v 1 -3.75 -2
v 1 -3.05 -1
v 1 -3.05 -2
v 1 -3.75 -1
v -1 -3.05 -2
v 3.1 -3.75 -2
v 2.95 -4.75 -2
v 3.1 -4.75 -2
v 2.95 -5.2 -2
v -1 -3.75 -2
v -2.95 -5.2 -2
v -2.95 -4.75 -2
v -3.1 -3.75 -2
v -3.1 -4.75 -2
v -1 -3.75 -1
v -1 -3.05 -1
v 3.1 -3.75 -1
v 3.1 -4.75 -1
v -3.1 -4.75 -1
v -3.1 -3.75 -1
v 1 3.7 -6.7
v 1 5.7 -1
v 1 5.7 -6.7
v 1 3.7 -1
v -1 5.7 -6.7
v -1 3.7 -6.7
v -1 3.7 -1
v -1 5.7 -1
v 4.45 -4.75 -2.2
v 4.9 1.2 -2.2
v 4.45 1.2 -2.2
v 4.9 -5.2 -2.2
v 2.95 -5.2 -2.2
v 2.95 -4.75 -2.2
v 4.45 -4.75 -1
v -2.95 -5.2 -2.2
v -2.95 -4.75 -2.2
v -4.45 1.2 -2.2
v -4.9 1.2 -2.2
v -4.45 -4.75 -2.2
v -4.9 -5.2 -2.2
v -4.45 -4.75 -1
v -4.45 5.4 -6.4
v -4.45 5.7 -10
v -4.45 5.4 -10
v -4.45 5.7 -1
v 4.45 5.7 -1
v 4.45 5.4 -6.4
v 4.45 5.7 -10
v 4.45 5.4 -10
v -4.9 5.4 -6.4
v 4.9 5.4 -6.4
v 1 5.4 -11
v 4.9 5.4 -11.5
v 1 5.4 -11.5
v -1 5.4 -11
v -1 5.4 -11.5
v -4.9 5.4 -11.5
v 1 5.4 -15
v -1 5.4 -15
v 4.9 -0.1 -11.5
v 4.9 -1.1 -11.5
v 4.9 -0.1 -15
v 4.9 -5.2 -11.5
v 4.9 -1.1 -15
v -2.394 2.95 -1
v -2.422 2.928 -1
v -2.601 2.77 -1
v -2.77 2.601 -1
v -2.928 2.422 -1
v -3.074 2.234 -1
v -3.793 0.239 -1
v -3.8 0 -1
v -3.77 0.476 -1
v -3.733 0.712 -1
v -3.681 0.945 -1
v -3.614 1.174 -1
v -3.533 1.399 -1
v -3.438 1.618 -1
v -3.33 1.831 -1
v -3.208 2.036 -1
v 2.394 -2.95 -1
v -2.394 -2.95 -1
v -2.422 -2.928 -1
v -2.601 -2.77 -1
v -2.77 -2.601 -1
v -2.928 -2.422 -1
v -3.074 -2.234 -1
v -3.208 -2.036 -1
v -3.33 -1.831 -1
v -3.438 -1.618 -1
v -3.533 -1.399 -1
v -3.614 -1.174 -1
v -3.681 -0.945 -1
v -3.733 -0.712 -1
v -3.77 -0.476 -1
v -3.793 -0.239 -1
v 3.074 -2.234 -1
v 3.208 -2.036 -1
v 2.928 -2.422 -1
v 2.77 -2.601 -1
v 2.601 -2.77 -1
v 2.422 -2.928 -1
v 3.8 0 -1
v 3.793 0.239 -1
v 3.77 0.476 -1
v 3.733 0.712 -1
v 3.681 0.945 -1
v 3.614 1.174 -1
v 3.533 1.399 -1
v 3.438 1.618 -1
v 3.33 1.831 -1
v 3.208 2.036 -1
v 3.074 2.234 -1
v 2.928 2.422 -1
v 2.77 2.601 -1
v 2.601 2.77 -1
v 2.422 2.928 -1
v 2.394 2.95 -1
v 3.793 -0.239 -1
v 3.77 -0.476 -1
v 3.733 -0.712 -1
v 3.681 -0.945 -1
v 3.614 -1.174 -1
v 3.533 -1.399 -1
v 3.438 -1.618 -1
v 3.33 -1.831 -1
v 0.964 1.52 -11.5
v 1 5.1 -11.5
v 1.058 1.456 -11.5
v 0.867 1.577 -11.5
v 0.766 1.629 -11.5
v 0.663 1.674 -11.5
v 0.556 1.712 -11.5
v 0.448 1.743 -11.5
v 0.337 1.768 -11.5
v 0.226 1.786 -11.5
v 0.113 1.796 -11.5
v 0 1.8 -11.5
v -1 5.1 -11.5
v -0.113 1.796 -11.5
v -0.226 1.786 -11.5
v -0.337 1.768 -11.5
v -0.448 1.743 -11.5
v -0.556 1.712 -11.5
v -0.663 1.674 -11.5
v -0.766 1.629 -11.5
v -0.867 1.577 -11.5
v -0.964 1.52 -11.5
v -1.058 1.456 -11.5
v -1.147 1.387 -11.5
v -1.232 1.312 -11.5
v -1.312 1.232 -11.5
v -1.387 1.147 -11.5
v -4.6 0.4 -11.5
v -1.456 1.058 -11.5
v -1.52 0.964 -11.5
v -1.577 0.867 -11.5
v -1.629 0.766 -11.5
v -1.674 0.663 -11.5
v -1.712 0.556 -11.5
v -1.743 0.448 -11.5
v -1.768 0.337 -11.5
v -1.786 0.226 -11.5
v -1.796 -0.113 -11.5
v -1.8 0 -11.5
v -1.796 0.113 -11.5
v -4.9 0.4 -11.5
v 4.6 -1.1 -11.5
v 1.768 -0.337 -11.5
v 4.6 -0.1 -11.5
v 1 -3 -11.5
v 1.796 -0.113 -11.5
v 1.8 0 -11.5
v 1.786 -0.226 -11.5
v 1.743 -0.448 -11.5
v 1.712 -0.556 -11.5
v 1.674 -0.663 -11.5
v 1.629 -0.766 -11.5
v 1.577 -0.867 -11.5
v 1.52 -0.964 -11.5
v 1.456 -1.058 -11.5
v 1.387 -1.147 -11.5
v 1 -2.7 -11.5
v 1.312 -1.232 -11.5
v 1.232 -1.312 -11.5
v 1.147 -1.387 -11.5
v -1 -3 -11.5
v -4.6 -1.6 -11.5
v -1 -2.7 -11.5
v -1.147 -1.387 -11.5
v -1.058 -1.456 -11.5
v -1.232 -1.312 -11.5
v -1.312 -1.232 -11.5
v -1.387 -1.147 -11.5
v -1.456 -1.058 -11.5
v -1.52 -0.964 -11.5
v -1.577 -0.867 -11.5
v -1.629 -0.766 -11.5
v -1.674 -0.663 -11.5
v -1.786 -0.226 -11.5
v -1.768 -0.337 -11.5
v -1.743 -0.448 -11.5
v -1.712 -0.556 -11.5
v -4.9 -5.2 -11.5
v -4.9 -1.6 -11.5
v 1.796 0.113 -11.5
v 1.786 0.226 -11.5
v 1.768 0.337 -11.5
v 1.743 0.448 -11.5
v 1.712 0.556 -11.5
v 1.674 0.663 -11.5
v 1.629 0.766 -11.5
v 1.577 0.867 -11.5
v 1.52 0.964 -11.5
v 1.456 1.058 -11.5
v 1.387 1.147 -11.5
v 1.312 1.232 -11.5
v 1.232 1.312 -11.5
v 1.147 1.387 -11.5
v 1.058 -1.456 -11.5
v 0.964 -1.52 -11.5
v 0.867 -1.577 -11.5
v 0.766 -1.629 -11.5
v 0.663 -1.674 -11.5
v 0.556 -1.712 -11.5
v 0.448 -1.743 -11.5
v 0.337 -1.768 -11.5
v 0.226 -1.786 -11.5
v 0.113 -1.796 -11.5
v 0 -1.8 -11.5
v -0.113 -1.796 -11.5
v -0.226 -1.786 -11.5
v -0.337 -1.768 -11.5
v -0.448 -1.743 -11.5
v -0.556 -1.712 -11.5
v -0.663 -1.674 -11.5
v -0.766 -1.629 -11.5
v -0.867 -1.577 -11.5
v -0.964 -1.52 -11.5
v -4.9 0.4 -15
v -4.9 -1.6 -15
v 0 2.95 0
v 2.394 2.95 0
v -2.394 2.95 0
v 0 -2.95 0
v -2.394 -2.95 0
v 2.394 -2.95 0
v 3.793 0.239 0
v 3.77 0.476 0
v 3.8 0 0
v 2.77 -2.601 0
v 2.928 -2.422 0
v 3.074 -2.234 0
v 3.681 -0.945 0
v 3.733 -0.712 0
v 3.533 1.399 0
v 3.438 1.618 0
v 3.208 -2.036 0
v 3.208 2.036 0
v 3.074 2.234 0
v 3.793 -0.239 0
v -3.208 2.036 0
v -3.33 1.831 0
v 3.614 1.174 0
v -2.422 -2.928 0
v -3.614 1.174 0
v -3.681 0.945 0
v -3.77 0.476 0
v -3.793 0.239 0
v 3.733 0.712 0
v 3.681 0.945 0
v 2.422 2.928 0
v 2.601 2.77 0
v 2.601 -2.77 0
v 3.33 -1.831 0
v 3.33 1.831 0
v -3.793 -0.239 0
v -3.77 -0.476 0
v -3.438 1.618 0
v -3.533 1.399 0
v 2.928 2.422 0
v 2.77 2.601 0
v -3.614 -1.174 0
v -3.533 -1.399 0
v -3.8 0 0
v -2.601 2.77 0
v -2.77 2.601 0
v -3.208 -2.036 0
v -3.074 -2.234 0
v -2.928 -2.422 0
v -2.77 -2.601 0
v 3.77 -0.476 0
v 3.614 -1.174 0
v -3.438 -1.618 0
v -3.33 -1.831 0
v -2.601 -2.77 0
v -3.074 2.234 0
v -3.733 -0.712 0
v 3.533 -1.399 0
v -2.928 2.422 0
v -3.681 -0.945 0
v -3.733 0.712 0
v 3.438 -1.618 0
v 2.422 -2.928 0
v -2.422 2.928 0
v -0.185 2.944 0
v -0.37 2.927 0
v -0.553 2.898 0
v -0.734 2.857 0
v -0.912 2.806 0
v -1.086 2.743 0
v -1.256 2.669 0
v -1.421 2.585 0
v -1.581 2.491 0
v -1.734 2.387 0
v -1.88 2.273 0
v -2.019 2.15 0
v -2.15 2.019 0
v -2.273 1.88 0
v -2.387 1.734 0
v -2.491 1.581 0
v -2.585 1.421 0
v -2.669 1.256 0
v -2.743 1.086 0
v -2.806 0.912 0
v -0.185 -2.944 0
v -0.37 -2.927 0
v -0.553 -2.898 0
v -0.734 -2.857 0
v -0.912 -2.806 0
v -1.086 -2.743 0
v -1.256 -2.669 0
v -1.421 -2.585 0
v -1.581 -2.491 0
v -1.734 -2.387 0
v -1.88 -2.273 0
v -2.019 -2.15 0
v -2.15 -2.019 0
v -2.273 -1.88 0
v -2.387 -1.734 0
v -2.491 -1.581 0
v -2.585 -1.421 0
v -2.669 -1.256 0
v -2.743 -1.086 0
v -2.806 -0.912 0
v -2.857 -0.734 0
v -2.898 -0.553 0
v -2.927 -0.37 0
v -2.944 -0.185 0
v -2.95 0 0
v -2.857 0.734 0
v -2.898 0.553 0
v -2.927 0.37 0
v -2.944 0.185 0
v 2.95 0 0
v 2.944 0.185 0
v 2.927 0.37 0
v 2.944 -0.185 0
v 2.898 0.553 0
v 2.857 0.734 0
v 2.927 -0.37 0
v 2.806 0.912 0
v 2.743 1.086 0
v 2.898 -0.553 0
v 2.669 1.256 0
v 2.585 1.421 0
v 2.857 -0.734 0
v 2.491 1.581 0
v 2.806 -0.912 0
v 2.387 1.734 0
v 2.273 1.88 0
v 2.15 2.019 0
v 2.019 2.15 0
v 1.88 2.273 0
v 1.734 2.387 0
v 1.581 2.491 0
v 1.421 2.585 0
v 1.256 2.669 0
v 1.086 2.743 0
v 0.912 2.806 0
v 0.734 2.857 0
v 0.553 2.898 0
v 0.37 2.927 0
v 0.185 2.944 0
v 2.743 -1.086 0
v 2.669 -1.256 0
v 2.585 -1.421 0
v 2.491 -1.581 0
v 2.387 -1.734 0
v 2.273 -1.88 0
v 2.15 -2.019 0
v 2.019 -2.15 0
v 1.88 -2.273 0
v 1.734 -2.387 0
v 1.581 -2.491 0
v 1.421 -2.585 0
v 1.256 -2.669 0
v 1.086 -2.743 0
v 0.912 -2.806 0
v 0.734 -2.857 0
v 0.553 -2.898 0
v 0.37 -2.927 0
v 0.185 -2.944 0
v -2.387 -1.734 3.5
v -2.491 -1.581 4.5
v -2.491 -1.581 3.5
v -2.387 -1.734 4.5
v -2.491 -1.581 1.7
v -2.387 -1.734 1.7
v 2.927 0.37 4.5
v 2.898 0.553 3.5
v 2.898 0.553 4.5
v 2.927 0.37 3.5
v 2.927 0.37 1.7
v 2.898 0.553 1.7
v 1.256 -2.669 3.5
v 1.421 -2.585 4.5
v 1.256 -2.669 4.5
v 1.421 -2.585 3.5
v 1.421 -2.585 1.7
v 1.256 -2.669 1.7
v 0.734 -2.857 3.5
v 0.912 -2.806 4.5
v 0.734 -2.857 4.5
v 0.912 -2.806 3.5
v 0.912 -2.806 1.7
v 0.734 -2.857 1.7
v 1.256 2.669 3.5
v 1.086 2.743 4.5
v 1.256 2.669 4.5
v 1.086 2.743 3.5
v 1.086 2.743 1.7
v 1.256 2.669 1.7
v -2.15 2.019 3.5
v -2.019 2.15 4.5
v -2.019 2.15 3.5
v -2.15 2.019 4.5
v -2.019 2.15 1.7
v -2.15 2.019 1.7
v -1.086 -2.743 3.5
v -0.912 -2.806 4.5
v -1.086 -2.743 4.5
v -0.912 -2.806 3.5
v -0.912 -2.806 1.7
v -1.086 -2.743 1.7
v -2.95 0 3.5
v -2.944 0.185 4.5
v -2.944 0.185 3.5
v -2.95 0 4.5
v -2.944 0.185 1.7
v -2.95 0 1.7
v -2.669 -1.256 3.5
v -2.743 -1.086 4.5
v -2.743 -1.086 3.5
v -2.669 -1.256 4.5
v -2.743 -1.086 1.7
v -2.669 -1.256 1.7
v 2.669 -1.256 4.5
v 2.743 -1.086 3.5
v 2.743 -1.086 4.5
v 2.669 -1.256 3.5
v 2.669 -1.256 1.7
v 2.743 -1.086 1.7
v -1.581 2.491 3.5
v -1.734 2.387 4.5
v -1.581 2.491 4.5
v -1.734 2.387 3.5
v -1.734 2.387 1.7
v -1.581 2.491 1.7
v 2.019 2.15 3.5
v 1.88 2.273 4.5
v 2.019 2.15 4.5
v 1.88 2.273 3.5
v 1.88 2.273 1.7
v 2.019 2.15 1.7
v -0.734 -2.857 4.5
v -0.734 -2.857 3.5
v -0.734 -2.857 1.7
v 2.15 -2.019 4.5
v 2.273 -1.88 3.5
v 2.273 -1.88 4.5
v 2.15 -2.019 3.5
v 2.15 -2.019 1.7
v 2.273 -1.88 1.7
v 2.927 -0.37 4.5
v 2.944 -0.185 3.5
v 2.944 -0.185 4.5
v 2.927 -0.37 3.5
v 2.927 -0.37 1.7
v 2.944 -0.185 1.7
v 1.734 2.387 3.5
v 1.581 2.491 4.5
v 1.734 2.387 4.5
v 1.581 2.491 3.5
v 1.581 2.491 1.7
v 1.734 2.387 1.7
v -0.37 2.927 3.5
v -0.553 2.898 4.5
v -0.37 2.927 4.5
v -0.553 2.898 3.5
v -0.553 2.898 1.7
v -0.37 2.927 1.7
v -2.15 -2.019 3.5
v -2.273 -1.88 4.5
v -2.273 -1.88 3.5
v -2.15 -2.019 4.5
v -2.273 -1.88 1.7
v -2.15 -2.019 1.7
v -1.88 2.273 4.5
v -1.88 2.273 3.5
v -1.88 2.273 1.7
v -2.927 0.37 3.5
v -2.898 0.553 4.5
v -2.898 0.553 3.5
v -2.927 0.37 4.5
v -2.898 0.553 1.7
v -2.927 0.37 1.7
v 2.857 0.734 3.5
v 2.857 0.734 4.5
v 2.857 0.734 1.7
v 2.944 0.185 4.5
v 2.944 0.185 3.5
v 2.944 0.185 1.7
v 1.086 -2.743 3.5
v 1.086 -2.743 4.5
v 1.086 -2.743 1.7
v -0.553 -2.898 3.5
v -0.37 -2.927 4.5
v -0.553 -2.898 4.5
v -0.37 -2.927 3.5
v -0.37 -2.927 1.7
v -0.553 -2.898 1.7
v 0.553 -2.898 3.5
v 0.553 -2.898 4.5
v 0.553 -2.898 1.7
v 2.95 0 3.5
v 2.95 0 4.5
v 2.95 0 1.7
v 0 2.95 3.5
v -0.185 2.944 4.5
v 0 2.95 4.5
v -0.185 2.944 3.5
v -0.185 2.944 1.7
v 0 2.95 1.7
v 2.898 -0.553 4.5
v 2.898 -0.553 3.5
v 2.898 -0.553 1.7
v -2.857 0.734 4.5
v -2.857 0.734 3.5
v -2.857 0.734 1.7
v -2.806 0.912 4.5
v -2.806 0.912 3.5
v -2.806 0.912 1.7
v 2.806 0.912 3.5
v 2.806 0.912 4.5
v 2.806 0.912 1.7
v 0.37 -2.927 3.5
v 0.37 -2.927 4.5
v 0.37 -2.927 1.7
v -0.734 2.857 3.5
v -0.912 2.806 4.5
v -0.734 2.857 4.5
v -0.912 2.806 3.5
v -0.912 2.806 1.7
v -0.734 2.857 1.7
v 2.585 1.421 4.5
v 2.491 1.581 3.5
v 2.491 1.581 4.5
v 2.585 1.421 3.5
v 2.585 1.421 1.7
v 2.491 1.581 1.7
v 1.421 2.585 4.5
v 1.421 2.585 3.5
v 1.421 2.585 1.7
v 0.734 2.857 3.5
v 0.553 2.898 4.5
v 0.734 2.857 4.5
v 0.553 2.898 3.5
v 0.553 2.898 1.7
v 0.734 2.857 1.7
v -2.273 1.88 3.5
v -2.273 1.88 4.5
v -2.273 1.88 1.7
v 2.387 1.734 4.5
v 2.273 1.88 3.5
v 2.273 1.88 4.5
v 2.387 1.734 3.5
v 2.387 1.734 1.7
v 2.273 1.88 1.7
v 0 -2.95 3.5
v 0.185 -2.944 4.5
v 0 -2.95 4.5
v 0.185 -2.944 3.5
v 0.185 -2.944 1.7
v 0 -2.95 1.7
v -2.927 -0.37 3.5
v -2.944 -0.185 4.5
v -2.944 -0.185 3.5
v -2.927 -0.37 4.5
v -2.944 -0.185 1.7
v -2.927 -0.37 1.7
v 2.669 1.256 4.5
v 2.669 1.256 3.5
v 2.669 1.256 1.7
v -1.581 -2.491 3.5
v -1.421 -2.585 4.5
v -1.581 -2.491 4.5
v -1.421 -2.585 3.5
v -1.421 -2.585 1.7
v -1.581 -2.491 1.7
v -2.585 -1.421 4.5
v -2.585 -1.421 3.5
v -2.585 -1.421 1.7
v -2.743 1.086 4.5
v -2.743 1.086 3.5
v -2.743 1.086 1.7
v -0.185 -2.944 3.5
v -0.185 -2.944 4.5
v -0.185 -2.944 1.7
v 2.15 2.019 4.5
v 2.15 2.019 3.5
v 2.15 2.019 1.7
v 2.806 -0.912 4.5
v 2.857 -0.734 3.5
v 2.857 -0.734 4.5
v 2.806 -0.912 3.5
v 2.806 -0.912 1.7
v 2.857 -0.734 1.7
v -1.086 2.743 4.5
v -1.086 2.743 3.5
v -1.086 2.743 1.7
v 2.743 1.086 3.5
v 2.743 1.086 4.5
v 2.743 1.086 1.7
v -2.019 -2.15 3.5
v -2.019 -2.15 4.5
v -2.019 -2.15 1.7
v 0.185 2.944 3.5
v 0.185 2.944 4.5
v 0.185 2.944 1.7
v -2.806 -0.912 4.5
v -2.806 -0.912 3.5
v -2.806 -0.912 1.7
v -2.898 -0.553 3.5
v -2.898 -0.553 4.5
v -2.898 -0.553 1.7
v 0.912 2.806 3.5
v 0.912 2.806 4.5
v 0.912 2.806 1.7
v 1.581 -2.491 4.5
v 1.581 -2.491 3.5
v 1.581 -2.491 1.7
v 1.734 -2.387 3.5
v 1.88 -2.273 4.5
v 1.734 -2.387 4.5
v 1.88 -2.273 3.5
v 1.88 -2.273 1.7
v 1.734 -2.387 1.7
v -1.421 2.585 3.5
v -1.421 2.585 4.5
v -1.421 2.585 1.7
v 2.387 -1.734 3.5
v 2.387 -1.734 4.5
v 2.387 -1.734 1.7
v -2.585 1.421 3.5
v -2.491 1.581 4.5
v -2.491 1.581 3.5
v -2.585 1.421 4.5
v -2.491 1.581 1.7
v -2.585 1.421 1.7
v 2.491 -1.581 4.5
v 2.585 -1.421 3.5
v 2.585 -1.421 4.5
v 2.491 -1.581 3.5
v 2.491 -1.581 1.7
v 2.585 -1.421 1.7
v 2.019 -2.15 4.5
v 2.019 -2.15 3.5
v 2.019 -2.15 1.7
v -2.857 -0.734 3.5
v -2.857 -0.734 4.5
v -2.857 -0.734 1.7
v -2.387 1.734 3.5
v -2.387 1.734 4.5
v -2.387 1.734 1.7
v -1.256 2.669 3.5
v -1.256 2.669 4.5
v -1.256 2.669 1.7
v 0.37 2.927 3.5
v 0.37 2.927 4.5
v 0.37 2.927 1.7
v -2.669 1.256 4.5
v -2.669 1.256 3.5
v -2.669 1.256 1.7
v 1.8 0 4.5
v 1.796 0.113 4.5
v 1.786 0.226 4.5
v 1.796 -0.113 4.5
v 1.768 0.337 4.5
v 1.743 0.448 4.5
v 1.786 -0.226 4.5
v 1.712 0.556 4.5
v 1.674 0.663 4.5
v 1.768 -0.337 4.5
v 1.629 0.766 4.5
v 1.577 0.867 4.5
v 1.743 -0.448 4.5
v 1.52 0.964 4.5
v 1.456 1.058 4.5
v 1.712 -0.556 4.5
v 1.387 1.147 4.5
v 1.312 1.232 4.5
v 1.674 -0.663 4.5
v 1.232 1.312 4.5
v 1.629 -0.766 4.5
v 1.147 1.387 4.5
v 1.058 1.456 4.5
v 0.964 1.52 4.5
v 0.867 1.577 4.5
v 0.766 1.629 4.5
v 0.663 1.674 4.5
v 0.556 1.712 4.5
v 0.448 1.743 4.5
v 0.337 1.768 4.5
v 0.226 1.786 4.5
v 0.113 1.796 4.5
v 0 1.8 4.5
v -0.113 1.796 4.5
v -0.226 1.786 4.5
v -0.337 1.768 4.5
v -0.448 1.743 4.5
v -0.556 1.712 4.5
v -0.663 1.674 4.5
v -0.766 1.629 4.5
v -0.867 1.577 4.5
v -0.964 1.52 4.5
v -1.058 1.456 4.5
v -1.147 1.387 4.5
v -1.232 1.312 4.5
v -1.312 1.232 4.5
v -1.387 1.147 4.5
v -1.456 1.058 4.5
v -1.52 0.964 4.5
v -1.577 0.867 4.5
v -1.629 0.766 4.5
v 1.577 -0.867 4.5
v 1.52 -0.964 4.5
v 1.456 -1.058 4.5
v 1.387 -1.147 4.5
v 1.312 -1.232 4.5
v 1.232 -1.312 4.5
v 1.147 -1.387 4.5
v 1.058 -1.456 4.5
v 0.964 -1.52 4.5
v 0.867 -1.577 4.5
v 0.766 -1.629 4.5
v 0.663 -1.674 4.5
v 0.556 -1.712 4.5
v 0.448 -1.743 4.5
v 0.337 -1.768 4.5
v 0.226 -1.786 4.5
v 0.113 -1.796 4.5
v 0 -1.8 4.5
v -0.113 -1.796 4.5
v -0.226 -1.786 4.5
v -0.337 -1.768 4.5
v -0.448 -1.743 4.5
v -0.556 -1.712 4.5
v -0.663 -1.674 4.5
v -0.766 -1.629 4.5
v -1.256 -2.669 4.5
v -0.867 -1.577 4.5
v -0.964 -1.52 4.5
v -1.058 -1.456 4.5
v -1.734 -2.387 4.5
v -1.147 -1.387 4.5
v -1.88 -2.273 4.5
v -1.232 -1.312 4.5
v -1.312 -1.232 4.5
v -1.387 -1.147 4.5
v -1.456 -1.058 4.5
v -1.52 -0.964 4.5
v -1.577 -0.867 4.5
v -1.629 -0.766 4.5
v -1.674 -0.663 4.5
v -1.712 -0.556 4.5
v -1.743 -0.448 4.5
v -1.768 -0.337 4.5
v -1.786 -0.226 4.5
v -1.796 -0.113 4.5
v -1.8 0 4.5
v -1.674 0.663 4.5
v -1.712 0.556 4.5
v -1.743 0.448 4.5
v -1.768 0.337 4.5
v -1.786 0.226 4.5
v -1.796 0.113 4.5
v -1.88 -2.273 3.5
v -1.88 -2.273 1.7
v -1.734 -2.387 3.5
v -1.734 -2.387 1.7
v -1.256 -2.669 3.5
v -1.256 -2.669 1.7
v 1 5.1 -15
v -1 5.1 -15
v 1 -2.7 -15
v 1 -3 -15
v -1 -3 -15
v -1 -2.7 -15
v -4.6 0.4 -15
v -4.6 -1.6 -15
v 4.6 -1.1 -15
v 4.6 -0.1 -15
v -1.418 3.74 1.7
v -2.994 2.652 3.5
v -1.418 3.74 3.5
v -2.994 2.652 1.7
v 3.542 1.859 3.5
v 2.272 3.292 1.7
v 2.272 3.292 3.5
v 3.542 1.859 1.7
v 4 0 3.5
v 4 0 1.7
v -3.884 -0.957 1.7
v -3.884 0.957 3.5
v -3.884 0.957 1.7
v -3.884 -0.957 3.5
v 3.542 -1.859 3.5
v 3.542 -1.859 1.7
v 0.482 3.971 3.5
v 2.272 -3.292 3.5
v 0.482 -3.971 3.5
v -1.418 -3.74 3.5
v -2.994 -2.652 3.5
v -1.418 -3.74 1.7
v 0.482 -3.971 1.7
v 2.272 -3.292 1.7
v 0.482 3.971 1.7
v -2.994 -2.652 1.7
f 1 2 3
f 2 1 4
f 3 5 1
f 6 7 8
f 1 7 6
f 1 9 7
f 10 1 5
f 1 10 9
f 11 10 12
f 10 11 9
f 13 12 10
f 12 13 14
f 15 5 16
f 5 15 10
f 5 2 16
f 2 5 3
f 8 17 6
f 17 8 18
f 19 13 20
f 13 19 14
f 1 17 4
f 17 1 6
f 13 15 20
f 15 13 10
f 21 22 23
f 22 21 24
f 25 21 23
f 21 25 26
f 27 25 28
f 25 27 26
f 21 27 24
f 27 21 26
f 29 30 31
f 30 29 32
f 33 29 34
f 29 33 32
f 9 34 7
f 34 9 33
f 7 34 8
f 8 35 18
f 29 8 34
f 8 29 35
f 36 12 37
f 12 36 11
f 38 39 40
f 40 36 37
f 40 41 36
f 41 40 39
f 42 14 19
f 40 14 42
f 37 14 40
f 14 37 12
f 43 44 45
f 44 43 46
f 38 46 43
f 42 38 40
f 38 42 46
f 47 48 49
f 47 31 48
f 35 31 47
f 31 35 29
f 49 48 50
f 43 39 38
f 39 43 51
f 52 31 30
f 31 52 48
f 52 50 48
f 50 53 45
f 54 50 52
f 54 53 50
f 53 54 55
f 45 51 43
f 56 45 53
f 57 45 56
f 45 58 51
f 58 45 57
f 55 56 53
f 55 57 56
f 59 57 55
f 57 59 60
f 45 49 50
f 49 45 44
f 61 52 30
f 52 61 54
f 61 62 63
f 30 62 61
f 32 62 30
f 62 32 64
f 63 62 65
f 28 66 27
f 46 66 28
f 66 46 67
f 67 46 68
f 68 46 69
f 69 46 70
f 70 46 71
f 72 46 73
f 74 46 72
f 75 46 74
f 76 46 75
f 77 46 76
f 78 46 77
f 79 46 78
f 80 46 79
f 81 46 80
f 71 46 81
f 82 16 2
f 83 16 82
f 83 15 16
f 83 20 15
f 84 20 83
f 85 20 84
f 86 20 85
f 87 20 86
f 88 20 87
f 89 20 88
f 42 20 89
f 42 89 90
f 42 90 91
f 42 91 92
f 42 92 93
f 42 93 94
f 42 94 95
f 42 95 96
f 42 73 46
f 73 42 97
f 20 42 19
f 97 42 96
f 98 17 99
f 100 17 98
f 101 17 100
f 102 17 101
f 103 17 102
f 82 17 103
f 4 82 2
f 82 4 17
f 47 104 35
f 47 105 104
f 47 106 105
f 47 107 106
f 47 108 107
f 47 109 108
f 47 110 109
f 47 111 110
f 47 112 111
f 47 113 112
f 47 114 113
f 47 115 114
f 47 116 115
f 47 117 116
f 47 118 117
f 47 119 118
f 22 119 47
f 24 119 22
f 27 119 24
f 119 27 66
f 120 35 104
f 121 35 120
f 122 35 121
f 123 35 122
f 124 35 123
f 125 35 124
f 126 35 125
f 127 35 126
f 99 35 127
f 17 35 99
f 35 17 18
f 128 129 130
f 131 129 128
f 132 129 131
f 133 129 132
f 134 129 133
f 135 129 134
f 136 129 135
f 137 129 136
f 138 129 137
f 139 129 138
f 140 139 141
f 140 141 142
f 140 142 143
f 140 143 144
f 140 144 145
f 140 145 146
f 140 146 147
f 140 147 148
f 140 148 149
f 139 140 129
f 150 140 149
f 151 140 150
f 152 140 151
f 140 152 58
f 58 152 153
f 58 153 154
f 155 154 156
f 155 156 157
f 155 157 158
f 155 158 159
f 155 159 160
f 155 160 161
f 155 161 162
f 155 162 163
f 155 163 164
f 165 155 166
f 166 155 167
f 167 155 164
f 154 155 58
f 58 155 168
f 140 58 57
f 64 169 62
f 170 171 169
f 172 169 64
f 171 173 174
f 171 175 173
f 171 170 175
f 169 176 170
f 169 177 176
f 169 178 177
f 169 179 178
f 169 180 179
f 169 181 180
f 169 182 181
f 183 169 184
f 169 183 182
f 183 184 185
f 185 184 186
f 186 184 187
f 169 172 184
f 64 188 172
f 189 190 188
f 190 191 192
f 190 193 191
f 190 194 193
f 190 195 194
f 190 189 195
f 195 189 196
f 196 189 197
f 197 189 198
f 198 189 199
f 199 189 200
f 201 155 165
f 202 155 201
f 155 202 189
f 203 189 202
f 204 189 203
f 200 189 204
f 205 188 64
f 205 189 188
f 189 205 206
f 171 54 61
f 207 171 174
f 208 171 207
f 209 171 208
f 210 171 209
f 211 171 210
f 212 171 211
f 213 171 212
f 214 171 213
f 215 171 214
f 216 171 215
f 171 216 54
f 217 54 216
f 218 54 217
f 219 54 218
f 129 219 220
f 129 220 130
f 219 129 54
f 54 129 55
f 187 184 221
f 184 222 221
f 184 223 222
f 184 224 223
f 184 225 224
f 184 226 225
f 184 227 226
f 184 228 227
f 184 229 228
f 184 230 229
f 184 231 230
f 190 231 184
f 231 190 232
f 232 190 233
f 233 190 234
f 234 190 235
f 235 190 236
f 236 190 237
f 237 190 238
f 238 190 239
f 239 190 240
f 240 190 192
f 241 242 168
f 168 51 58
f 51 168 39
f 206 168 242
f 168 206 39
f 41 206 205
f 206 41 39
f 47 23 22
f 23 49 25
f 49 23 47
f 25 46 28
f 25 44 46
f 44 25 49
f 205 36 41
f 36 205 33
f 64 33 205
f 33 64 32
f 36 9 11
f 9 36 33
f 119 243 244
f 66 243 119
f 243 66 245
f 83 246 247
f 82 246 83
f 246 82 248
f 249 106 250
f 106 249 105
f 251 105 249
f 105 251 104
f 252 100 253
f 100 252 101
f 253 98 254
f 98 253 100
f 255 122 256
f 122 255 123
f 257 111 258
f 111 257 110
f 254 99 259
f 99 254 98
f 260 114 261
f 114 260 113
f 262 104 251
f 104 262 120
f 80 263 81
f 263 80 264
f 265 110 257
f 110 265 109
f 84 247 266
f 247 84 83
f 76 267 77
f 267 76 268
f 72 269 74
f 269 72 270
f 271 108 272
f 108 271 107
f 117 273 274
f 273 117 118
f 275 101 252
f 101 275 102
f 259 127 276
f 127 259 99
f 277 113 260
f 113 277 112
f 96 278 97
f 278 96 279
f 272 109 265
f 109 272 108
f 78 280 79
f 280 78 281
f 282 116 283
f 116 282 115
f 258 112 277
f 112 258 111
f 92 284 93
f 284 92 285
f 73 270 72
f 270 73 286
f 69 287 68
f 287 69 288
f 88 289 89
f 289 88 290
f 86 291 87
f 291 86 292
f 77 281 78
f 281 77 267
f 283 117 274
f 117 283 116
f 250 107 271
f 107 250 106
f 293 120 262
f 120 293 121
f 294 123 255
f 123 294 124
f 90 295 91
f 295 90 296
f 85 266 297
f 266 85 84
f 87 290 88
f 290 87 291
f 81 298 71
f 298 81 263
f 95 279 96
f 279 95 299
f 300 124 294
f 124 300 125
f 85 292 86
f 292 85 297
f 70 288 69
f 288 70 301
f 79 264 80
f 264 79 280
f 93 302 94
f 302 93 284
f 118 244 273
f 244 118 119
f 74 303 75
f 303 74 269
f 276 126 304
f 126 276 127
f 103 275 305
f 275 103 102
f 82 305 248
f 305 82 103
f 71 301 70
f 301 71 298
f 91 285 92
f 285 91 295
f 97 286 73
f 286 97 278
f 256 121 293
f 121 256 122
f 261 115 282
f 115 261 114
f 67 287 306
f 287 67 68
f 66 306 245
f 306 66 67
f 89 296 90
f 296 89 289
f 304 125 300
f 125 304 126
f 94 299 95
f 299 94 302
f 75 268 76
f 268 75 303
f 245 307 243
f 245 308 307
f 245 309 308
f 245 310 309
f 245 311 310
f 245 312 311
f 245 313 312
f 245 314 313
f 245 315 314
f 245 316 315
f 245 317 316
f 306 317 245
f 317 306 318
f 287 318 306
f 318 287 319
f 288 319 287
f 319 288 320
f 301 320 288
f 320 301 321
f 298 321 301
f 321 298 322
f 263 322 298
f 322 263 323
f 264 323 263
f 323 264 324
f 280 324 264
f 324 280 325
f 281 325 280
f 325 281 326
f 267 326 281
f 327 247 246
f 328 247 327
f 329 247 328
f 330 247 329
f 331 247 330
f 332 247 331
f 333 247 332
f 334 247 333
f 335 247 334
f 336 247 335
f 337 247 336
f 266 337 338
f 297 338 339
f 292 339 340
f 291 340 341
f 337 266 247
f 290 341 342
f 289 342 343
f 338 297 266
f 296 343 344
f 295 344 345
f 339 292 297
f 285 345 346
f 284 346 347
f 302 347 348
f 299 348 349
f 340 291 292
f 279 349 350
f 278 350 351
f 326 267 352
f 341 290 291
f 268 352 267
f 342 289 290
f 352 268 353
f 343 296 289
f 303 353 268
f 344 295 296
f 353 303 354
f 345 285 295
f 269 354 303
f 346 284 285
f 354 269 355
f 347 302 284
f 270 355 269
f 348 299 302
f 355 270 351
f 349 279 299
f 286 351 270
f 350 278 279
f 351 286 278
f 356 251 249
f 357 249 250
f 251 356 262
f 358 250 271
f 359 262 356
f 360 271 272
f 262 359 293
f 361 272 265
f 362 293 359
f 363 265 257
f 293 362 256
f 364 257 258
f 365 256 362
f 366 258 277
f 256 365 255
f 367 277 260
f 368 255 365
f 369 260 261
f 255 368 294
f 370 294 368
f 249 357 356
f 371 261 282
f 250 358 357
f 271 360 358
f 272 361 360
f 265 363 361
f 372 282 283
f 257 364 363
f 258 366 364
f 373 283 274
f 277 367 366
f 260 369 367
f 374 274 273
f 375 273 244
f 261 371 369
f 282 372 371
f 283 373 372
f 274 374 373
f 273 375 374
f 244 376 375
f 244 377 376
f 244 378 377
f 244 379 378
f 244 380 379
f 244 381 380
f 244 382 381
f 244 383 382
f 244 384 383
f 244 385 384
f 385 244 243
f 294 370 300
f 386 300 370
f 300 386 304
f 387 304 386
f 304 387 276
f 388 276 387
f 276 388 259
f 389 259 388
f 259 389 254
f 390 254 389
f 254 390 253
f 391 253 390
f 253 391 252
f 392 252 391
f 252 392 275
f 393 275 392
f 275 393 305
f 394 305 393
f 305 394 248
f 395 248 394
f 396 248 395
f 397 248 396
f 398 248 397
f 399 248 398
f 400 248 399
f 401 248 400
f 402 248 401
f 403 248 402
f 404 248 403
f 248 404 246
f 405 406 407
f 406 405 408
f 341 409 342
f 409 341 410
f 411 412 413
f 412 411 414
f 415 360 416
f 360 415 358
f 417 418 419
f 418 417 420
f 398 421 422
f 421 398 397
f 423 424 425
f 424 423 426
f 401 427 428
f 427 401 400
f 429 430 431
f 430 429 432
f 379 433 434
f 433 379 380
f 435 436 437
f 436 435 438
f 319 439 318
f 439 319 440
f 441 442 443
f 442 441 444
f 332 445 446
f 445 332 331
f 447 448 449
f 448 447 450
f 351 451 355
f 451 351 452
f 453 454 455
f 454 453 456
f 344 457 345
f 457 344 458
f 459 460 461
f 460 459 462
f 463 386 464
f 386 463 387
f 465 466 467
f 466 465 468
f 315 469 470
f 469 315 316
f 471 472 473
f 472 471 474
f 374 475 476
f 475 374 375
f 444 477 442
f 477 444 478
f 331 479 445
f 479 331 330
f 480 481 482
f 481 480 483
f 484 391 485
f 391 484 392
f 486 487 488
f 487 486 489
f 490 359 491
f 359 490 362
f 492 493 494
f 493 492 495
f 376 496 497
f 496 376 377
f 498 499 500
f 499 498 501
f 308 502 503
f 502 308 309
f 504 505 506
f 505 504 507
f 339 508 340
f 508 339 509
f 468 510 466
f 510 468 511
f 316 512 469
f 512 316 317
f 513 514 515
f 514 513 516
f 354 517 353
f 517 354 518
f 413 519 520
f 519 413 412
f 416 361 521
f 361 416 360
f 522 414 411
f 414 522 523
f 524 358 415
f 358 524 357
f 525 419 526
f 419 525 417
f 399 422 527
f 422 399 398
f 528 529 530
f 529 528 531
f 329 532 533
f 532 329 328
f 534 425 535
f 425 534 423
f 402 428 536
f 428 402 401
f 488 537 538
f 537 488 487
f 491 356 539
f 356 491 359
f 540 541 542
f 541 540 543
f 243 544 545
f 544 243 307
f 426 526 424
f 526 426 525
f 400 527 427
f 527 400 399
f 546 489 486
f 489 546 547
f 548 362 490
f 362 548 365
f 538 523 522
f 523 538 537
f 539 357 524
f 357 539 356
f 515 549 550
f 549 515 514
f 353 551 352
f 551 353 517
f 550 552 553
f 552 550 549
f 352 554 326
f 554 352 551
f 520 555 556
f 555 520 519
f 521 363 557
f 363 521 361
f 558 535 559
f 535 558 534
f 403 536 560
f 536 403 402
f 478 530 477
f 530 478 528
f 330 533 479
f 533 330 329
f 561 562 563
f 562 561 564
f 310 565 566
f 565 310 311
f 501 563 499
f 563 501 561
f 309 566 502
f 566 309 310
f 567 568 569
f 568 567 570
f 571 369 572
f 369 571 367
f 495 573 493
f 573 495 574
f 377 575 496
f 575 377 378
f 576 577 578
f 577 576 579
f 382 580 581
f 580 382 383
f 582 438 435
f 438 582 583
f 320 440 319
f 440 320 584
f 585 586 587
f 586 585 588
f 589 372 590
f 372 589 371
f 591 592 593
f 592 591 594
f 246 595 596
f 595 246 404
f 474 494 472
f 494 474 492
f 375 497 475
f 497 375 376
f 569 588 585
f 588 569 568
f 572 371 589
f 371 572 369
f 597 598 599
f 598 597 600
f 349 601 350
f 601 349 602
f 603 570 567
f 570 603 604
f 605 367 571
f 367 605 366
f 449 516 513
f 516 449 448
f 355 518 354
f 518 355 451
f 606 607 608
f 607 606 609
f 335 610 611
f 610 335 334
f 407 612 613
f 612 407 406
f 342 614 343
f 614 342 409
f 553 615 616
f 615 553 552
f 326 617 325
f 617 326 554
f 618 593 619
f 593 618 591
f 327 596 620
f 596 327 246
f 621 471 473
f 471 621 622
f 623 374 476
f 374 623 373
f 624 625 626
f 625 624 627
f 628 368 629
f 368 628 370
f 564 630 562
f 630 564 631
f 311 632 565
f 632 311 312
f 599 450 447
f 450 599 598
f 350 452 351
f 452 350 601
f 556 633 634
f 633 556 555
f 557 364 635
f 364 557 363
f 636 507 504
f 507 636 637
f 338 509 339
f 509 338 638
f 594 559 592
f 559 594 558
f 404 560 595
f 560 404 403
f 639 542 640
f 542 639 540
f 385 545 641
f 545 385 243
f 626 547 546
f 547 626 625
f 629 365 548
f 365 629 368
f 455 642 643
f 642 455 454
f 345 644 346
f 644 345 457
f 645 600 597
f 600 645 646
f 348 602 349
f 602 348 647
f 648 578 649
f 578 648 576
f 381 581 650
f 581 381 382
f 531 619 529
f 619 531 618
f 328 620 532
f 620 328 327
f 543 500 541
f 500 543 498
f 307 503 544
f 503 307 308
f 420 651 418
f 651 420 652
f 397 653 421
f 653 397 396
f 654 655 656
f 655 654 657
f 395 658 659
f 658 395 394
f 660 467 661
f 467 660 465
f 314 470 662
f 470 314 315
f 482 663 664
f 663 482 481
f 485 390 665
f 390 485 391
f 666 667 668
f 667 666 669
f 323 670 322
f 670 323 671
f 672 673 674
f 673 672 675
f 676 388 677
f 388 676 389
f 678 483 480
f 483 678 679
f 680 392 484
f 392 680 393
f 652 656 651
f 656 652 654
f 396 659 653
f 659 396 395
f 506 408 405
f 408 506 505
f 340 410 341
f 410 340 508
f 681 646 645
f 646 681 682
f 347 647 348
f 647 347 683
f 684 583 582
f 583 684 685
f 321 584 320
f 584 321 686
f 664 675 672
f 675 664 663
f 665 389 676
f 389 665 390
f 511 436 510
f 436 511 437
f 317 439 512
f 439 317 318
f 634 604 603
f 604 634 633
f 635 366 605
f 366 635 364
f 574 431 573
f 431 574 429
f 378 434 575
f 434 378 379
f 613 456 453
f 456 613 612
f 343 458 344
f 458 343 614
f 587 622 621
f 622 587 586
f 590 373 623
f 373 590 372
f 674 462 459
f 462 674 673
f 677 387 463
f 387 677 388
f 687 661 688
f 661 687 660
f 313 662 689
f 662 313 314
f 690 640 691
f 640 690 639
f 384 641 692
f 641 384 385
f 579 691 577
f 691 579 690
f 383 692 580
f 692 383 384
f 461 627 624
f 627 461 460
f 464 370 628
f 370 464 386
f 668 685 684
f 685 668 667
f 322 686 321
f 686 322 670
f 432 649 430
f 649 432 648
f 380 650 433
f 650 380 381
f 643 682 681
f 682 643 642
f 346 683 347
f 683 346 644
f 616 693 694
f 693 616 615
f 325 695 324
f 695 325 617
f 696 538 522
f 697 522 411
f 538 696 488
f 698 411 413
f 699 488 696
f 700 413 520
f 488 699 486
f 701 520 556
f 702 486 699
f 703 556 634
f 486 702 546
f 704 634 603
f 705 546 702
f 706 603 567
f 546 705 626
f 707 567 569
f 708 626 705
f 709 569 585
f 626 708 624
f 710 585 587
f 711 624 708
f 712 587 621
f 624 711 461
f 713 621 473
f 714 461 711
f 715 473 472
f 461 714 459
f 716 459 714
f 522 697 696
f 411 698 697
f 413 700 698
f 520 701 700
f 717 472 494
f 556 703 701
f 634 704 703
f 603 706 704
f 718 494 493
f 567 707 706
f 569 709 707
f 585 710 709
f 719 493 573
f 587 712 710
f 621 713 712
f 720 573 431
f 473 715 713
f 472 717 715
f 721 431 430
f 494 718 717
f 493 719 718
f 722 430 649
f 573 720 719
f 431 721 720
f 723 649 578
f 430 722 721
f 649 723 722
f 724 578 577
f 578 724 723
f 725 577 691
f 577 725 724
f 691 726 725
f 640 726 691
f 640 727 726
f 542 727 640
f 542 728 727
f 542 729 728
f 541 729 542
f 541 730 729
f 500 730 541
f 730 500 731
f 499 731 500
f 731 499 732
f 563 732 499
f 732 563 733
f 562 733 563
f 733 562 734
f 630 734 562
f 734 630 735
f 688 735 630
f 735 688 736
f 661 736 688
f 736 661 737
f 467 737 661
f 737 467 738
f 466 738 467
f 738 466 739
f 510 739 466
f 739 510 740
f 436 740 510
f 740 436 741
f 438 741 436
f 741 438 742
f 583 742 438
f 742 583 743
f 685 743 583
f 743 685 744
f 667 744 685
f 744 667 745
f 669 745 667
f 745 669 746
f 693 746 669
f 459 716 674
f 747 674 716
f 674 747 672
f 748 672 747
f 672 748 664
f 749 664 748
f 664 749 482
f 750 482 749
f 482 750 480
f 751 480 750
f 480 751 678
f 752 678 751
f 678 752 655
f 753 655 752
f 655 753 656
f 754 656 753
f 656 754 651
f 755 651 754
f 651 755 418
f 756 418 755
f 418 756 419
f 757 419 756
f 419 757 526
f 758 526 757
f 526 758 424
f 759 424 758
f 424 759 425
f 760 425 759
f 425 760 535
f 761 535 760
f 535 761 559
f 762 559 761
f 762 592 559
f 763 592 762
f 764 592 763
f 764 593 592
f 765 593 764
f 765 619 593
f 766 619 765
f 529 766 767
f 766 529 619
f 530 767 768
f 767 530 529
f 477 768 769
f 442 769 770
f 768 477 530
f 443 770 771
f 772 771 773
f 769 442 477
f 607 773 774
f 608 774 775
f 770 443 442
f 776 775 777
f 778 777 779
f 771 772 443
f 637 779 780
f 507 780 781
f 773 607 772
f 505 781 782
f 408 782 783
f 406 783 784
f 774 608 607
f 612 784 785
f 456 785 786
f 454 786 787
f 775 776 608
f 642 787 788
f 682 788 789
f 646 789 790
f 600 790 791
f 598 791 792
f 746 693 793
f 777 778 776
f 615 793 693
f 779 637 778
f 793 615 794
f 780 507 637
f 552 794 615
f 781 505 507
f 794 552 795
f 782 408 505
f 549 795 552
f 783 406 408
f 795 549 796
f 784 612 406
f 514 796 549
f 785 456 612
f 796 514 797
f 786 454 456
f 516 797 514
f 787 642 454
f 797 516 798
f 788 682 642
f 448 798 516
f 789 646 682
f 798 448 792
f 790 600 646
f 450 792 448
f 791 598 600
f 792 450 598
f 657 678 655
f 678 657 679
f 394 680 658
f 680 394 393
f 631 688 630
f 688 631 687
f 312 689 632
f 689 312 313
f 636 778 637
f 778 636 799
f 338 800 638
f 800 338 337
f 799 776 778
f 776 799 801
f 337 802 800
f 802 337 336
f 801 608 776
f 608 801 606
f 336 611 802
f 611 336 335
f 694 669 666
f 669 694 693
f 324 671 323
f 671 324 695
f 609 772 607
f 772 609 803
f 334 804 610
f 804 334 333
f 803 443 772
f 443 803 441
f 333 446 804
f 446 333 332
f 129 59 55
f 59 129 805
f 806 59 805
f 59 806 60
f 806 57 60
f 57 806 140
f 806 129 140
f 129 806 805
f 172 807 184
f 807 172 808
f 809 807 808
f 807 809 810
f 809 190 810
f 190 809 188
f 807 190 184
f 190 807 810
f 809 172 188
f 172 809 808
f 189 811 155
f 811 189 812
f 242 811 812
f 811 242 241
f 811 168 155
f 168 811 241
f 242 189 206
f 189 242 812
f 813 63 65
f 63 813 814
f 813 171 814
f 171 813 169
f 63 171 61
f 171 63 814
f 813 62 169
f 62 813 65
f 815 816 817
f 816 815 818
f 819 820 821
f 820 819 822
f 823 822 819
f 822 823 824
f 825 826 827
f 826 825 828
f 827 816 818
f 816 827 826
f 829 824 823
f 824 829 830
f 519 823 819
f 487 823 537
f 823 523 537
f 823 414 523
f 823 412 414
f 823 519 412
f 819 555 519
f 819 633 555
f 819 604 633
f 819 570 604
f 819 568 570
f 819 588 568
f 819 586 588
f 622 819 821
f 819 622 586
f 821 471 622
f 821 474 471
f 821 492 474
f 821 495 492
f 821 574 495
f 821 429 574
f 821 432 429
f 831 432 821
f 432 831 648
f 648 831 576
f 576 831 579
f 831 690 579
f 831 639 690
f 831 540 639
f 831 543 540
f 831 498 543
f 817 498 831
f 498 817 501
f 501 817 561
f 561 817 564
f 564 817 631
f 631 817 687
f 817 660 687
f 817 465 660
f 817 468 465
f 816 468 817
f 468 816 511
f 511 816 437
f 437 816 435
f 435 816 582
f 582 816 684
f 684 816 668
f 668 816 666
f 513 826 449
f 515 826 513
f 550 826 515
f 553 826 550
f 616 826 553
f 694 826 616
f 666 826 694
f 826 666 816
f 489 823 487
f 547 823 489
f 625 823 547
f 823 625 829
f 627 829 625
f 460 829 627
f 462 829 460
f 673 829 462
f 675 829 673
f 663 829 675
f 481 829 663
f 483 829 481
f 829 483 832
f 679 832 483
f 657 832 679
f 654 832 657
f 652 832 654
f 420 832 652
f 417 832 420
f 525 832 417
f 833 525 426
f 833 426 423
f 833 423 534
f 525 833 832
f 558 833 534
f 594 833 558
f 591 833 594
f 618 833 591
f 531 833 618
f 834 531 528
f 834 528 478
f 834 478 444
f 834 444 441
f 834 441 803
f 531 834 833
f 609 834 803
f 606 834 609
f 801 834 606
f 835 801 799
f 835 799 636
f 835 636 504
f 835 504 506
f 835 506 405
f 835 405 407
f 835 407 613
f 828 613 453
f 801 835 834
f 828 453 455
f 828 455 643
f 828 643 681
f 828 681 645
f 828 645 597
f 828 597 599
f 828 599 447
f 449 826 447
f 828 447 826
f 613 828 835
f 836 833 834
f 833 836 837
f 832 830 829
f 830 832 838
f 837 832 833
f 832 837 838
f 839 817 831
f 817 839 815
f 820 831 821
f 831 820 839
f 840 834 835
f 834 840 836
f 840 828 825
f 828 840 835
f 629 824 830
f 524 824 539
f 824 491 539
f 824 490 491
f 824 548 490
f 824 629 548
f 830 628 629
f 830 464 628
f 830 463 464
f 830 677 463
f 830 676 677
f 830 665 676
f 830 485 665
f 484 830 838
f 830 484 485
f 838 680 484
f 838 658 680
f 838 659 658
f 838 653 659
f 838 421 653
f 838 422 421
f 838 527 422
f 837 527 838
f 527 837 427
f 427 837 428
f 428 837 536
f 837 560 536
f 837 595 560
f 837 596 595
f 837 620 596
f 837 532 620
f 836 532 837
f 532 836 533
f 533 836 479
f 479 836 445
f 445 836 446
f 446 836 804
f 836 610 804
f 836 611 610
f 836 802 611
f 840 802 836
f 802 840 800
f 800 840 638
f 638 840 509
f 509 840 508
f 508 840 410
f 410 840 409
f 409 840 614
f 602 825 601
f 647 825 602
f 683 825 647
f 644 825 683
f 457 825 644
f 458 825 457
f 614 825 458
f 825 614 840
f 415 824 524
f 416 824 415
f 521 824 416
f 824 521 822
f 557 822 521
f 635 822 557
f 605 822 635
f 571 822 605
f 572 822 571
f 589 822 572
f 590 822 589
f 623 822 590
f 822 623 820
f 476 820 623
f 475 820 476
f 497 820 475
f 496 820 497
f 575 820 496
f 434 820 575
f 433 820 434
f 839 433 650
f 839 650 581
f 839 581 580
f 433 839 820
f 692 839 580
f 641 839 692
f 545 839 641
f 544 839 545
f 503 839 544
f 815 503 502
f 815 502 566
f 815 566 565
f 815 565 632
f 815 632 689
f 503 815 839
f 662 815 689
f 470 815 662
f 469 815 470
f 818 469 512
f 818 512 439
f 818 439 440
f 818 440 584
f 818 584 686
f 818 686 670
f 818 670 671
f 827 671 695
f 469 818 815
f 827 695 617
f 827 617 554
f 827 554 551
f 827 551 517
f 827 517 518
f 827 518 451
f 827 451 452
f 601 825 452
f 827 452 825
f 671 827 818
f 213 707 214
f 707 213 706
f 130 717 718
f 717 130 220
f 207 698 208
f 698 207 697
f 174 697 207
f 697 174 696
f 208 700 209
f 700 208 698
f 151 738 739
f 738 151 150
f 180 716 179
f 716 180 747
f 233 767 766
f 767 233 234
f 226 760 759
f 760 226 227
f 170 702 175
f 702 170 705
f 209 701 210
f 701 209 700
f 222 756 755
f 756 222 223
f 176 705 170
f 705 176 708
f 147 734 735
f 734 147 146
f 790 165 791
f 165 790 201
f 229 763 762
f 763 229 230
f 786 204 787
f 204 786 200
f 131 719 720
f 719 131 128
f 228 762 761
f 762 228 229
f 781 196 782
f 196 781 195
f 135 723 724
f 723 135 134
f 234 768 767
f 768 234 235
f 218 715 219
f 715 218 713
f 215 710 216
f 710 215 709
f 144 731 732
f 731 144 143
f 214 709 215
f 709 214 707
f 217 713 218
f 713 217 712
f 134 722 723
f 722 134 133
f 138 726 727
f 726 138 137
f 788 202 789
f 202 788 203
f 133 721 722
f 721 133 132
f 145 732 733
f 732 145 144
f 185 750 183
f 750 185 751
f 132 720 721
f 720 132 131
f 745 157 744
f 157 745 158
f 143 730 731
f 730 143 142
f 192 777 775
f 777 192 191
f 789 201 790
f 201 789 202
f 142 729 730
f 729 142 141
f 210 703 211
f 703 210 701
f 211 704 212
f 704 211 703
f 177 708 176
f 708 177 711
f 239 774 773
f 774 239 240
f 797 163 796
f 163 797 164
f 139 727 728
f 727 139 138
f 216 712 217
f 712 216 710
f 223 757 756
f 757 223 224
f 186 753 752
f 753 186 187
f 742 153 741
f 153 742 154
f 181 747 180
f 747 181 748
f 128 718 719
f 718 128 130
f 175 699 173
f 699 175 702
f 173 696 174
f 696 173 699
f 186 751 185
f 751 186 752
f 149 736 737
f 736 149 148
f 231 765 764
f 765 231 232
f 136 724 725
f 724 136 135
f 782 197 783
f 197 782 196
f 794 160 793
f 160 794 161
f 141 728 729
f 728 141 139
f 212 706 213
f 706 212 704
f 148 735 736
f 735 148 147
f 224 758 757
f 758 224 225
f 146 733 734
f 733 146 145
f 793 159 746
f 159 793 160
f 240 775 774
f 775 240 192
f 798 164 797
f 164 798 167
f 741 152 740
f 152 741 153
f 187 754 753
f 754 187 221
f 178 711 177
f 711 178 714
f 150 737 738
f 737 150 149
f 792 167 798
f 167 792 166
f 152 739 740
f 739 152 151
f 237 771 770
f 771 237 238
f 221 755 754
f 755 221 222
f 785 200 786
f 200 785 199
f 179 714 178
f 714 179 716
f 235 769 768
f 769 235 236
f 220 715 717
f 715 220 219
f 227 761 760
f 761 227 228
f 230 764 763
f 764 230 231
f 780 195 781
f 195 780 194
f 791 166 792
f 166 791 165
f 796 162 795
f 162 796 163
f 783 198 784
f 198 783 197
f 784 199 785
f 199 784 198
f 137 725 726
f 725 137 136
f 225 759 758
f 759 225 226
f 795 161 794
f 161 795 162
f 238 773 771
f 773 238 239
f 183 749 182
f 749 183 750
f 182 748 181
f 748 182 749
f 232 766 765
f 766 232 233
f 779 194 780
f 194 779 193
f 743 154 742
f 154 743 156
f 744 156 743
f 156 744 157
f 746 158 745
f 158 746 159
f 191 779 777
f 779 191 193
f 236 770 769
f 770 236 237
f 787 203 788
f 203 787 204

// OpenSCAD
difference() {
    union() {
        // box part
        difference() {
            translate([-4.9, -5.2, -11.5])cube([9.8, 10.9, 10.5]);
            union() {
                translate([-1,-5.25,-2])cube([2,2.2,1.2]);
                translate([-3.1,-5.25,-2])cube([6.2,1.5,1.2]);
                translate([-1,3.7,-6.7])cube([2,2.1,6]);
                translate([2.95,-5.25,-2.2])cube([2,0.5, 1.3]);
                translate([-4.95,-5.25,-2.2])cube([2,0.5, 1.3]);
                translate([-4.95,-5.25,-2.2])cube([0.5,10.9, 1.3]);
                translate([4.45,-5.25,-2.2])cube([0.5,10.9, 1.3]);
                translate([-4.95,7,-8])rotate([45,0,0])cube([0.5, 10.9, 10.9]);
                translate([4.45,7,-8])rotate([45,0,0])cube([0.5, 10.9, 10.9]);
                translate([-4.95,5.4,-12])cube([0.5,1,7]);
                translate([4.45,5.4,-12])cube([0.5,1,7]);
                translate([-4.95,5.4,-12])cube([10,1,2]);
            }
        }
        
        // stem part
        translate([0,0,-0.5]) cylinder(h=5, d=5.9, $fn=100);
        difference() {   
            translate([0,0,-1.5])cylinder(h=1.5, d=7.6, $fn=100); 
            union() {
                translate([-5,2.95,-2])cube([10,2,2.5]);
                translate([-5,-4.95,-2])cube([10,2,2.5]);
            }
        }
        
        // pins parts
        translate([-1,5.1,-15])cube([2,0.3,4]);
        translate([-1,-3,-15])cube([2,0.3,4]);
        translate([-4.9,-1.6,-15])cube([0.3,2,4]);
        translate([4.6,-1.1,-15])cube([0.3,1,4]);
        
        // nut part
        translate([0,0,1.7])cylinder(h=1.8, d=8);
    }  
    // socket part
    cylinder(h=28, d=3.6, $fn=100, center=true);
}
